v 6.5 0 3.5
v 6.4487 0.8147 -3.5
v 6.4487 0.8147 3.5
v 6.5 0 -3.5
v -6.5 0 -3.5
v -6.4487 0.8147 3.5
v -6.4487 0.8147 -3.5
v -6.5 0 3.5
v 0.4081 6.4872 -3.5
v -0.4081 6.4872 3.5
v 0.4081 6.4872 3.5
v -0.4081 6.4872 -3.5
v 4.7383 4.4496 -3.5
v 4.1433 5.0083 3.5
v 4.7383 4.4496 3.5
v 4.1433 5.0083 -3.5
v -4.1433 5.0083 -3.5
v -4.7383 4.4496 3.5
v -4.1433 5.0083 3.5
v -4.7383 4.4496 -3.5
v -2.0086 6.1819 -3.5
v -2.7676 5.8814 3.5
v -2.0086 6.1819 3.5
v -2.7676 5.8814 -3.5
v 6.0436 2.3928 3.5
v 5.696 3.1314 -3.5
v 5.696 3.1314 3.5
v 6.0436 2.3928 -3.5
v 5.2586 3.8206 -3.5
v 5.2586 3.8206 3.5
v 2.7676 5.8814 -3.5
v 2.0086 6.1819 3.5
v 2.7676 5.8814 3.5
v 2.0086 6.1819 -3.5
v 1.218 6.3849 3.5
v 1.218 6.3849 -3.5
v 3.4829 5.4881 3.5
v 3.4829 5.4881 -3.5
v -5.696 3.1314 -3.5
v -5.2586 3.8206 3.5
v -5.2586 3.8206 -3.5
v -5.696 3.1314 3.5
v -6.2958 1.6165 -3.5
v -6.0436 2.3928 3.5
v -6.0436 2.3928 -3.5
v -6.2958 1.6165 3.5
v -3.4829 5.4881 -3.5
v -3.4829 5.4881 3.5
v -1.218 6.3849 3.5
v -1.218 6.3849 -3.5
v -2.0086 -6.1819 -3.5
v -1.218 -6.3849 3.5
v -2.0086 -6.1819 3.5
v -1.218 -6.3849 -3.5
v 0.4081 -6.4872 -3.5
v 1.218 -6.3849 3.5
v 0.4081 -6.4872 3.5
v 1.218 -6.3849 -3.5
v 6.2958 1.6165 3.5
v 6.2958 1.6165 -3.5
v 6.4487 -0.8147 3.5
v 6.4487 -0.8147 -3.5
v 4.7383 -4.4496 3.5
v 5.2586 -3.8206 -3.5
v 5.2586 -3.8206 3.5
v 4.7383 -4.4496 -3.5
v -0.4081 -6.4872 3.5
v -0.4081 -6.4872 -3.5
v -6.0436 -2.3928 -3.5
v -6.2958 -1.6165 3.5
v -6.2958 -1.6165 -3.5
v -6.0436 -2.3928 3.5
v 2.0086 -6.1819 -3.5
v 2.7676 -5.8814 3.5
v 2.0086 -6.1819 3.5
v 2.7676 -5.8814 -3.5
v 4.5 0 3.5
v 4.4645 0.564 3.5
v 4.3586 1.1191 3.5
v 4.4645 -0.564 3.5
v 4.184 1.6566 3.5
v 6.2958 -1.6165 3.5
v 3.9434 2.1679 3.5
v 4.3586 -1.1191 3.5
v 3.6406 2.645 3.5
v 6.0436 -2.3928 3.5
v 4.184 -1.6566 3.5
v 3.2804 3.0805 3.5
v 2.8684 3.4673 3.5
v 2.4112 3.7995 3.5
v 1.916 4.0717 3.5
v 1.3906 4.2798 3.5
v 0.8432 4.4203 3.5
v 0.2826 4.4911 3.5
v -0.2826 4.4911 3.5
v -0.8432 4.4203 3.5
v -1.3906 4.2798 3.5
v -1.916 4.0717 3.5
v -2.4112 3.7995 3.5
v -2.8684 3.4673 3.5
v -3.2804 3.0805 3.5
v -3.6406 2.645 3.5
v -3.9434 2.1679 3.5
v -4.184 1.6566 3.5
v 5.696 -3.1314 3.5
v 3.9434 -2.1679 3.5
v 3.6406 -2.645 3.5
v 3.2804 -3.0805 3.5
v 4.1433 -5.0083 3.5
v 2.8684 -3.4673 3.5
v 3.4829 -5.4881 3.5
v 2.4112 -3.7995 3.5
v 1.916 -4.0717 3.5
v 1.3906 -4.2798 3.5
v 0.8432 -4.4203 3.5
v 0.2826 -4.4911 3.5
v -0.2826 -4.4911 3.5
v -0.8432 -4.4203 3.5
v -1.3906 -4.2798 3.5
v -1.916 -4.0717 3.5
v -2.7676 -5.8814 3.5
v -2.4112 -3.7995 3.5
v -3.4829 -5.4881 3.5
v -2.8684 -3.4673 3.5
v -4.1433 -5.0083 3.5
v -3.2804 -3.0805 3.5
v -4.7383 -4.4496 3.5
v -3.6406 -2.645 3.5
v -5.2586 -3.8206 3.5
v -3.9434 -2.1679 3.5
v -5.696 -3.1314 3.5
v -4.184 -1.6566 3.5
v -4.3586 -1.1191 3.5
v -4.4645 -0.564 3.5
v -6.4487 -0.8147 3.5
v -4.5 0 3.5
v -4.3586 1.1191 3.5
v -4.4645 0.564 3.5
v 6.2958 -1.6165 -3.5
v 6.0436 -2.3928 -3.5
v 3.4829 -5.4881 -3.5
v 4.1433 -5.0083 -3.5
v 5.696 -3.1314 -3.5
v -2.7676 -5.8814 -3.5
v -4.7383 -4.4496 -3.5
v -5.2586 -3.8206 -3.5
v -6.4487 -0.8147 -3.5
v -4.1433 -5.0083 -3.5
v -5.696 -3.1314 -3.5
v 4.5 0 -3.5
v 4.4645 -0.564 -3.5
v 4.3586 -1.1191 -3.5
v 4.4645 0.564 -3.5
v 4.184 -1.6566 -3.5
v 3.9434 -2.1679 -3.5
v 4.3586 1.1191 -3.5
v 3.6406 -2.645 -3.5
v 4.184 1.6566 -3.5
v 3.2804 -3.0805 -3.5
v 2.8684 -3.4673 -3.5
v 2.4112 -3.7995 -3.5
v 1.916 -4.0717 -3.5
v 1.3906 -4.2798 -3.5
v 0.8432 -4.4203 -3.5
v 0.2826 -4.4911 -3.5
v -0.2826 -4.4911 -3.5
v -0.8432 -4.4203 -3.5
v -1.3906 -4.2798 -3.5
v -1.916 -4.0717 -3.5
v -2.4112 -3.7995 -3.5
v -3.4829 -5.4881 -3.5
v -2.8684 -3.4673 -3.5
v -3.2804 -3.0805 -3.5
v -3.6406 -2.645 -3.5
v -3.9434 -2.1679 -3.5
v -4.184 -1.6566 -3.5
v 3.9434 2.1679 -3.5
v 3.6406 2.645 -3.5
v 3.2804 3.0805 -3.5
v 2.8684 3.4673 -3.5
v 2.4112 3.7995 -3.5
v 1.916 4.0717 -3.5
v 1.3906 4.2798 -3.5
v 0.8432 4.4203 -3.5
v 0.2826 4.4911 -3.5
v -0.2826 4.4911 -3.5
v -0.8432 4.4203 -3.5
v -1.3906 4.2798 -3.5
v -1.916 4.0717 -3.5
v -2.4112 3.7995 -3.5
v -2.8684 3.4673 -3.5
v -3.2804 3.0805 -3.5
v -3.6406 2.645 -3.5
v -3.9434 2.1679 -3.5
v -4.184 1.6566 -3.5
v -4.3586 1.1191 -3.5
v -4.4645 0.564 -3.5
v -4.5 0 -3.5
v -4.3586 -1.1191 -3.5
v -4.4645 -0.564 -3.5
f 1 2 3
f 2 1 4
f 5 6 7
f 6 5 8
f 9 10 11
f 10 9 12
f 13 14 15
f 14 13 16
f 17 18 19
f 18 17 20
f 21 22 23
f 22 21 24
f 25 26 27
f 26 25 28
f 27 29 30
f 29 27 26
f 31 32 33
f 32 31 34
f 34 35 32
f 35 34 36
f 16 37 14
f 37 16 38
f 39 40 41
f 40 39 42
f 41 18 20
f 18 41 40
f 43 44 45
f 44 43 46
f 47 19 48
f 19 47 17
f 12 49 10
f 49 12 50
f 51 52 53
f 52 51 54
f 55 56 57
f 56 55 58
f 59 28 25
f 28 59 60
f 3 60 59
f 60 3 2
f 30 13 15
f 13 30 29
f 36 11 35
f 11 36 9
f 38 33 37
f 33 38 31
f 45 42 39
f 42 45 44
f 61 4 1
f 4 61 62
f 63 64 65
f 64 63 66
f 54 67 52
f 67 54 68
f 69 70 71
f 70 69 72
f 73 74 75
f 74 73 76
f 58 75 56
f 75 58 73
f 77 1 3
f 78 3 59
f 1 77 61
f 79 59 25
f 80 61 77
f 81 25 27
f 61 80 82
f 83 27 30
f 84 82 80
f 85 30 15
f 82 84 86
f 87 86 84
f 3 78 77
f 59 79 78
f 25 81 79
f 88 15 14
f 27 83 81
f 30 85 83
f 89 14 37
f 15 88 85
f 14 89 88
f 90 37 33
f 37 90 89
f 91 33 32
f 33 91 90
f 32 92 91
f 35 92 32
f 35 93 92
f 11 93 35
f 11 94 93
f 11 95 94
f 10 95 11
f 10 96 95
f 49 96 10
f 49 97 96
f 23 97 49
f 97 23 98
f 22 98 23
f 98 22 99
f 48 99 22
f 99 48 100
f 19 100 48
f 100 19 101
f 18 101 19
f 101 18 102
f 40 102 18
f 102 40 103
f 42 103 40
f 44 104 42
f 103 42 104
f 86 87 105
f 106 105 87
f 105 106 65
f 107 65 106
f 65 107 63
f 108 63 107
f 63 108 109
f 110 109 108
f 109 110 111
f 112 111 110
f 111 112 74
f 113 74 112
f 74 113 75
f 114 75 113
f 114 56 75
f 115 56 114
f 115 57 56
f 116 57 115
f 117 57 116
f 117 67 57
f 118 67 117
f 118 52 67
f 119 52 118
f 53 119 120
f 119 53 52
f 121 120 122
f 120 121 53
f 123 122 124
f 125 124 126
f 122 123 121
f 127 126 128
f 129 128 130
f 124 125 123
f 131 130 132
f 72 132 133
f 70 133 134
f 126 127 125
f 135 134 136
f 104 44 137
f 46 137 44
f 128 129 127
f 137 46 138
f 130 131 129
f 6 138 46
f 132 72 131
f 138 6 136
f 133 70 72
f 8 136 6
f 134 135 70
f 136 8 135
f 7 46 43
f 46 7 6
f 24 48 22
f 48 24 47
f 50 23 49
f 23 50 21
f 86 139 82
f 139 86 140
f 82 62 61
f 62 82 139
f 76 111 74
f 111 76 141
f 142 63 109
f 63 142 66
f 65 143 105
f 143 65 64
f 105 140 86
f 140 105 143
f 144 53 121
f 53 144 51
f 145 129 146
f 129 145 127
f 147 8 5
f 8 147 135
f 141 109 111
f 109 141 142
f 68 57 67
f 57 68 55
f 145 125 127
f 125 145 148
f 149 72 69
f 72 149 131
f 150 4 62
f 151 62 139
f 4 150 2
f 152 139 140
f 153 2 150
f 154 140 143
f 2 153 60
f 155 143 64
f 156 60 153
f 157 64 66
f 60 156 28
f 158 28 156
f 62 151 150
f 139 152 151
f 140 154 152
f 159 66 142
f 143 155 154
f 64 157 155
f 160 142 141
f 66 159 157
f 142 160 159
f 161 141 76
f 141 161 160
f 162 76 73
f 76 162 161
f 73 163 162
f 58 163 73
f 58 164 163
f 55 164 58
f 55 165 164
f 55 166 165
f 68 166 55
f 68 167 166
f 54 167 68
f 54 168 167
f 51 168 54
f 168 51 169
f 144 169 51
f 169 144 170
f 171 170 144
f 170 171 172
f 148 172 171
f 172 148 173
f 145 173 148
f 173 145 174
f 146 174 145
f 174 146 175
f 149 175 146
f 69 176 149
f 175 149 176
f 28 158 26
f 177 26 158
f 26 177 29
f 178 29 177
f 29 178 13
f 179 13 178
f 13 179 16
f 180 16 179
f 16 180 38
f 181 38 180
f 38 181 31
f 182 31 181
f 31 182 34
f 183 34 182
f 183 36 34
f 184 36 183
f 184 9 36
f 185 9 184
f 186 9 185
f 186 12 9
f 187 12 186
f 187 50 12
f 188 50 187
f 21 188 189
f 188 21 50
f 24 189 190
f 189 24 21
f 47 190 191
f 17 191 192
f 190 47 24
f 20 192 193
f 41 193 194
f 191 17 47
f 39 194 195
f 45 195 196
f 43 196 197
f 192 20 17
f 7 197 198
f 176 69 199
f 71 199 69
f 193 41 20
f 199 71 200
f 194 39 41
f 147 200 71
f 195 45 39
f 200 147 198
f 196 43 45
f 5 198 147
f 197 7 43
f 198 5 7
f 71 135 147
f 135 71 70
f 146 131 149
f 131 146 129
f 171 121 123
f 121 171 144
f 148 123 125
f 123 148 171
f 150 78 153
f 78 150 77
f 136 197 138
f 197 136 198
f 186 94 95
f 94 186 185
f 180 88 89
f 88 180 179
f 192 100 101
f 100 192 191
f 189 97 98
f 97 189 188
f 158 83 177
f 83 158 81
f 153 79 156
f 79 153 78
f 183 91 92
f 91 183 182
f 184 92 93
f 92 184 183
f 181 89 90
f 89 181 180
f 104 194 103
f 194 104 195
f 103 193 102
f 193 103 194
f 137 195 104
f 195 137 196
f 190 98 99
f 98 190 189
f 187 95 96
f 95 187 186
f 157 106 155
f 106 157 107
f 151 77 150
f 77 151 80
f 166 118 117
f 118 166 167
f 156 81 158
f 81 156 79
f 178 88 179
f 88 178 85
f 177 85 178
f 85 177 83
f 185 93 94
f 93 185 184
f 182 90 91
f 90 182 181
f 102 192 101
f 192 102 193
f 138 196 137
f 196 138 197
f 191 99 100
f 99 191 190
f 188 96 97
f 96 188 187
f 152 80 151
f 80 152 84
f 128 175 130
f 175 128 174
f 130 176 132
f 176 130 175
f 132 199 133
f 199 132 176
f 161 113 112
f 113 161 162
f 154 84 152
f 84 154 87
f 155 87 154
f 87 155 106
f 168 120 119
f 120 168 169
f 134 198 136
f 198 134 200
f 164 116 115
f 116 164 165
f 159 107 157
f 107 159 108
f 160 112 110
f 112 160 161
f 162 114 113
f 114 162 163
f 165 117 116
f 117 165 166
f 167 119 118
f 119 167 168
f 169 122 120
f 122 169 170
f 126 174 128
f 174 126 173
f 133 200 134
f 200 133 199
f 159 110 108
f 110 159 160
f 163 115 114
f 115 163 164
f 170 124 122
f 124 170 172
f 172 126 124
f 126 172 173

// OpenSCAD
$fn = 50;


difference() {
	union() {
		translate(v = [0, 0, -3.5000000000]) {
			cylinder(h = 7, r = 6.5000000000);
		}
	}
	union() {
		translate(v = [0, 0, -100.0000000000]) {
			cylinder(h = 200, r = 4.5000000000);
		}
	}
}
